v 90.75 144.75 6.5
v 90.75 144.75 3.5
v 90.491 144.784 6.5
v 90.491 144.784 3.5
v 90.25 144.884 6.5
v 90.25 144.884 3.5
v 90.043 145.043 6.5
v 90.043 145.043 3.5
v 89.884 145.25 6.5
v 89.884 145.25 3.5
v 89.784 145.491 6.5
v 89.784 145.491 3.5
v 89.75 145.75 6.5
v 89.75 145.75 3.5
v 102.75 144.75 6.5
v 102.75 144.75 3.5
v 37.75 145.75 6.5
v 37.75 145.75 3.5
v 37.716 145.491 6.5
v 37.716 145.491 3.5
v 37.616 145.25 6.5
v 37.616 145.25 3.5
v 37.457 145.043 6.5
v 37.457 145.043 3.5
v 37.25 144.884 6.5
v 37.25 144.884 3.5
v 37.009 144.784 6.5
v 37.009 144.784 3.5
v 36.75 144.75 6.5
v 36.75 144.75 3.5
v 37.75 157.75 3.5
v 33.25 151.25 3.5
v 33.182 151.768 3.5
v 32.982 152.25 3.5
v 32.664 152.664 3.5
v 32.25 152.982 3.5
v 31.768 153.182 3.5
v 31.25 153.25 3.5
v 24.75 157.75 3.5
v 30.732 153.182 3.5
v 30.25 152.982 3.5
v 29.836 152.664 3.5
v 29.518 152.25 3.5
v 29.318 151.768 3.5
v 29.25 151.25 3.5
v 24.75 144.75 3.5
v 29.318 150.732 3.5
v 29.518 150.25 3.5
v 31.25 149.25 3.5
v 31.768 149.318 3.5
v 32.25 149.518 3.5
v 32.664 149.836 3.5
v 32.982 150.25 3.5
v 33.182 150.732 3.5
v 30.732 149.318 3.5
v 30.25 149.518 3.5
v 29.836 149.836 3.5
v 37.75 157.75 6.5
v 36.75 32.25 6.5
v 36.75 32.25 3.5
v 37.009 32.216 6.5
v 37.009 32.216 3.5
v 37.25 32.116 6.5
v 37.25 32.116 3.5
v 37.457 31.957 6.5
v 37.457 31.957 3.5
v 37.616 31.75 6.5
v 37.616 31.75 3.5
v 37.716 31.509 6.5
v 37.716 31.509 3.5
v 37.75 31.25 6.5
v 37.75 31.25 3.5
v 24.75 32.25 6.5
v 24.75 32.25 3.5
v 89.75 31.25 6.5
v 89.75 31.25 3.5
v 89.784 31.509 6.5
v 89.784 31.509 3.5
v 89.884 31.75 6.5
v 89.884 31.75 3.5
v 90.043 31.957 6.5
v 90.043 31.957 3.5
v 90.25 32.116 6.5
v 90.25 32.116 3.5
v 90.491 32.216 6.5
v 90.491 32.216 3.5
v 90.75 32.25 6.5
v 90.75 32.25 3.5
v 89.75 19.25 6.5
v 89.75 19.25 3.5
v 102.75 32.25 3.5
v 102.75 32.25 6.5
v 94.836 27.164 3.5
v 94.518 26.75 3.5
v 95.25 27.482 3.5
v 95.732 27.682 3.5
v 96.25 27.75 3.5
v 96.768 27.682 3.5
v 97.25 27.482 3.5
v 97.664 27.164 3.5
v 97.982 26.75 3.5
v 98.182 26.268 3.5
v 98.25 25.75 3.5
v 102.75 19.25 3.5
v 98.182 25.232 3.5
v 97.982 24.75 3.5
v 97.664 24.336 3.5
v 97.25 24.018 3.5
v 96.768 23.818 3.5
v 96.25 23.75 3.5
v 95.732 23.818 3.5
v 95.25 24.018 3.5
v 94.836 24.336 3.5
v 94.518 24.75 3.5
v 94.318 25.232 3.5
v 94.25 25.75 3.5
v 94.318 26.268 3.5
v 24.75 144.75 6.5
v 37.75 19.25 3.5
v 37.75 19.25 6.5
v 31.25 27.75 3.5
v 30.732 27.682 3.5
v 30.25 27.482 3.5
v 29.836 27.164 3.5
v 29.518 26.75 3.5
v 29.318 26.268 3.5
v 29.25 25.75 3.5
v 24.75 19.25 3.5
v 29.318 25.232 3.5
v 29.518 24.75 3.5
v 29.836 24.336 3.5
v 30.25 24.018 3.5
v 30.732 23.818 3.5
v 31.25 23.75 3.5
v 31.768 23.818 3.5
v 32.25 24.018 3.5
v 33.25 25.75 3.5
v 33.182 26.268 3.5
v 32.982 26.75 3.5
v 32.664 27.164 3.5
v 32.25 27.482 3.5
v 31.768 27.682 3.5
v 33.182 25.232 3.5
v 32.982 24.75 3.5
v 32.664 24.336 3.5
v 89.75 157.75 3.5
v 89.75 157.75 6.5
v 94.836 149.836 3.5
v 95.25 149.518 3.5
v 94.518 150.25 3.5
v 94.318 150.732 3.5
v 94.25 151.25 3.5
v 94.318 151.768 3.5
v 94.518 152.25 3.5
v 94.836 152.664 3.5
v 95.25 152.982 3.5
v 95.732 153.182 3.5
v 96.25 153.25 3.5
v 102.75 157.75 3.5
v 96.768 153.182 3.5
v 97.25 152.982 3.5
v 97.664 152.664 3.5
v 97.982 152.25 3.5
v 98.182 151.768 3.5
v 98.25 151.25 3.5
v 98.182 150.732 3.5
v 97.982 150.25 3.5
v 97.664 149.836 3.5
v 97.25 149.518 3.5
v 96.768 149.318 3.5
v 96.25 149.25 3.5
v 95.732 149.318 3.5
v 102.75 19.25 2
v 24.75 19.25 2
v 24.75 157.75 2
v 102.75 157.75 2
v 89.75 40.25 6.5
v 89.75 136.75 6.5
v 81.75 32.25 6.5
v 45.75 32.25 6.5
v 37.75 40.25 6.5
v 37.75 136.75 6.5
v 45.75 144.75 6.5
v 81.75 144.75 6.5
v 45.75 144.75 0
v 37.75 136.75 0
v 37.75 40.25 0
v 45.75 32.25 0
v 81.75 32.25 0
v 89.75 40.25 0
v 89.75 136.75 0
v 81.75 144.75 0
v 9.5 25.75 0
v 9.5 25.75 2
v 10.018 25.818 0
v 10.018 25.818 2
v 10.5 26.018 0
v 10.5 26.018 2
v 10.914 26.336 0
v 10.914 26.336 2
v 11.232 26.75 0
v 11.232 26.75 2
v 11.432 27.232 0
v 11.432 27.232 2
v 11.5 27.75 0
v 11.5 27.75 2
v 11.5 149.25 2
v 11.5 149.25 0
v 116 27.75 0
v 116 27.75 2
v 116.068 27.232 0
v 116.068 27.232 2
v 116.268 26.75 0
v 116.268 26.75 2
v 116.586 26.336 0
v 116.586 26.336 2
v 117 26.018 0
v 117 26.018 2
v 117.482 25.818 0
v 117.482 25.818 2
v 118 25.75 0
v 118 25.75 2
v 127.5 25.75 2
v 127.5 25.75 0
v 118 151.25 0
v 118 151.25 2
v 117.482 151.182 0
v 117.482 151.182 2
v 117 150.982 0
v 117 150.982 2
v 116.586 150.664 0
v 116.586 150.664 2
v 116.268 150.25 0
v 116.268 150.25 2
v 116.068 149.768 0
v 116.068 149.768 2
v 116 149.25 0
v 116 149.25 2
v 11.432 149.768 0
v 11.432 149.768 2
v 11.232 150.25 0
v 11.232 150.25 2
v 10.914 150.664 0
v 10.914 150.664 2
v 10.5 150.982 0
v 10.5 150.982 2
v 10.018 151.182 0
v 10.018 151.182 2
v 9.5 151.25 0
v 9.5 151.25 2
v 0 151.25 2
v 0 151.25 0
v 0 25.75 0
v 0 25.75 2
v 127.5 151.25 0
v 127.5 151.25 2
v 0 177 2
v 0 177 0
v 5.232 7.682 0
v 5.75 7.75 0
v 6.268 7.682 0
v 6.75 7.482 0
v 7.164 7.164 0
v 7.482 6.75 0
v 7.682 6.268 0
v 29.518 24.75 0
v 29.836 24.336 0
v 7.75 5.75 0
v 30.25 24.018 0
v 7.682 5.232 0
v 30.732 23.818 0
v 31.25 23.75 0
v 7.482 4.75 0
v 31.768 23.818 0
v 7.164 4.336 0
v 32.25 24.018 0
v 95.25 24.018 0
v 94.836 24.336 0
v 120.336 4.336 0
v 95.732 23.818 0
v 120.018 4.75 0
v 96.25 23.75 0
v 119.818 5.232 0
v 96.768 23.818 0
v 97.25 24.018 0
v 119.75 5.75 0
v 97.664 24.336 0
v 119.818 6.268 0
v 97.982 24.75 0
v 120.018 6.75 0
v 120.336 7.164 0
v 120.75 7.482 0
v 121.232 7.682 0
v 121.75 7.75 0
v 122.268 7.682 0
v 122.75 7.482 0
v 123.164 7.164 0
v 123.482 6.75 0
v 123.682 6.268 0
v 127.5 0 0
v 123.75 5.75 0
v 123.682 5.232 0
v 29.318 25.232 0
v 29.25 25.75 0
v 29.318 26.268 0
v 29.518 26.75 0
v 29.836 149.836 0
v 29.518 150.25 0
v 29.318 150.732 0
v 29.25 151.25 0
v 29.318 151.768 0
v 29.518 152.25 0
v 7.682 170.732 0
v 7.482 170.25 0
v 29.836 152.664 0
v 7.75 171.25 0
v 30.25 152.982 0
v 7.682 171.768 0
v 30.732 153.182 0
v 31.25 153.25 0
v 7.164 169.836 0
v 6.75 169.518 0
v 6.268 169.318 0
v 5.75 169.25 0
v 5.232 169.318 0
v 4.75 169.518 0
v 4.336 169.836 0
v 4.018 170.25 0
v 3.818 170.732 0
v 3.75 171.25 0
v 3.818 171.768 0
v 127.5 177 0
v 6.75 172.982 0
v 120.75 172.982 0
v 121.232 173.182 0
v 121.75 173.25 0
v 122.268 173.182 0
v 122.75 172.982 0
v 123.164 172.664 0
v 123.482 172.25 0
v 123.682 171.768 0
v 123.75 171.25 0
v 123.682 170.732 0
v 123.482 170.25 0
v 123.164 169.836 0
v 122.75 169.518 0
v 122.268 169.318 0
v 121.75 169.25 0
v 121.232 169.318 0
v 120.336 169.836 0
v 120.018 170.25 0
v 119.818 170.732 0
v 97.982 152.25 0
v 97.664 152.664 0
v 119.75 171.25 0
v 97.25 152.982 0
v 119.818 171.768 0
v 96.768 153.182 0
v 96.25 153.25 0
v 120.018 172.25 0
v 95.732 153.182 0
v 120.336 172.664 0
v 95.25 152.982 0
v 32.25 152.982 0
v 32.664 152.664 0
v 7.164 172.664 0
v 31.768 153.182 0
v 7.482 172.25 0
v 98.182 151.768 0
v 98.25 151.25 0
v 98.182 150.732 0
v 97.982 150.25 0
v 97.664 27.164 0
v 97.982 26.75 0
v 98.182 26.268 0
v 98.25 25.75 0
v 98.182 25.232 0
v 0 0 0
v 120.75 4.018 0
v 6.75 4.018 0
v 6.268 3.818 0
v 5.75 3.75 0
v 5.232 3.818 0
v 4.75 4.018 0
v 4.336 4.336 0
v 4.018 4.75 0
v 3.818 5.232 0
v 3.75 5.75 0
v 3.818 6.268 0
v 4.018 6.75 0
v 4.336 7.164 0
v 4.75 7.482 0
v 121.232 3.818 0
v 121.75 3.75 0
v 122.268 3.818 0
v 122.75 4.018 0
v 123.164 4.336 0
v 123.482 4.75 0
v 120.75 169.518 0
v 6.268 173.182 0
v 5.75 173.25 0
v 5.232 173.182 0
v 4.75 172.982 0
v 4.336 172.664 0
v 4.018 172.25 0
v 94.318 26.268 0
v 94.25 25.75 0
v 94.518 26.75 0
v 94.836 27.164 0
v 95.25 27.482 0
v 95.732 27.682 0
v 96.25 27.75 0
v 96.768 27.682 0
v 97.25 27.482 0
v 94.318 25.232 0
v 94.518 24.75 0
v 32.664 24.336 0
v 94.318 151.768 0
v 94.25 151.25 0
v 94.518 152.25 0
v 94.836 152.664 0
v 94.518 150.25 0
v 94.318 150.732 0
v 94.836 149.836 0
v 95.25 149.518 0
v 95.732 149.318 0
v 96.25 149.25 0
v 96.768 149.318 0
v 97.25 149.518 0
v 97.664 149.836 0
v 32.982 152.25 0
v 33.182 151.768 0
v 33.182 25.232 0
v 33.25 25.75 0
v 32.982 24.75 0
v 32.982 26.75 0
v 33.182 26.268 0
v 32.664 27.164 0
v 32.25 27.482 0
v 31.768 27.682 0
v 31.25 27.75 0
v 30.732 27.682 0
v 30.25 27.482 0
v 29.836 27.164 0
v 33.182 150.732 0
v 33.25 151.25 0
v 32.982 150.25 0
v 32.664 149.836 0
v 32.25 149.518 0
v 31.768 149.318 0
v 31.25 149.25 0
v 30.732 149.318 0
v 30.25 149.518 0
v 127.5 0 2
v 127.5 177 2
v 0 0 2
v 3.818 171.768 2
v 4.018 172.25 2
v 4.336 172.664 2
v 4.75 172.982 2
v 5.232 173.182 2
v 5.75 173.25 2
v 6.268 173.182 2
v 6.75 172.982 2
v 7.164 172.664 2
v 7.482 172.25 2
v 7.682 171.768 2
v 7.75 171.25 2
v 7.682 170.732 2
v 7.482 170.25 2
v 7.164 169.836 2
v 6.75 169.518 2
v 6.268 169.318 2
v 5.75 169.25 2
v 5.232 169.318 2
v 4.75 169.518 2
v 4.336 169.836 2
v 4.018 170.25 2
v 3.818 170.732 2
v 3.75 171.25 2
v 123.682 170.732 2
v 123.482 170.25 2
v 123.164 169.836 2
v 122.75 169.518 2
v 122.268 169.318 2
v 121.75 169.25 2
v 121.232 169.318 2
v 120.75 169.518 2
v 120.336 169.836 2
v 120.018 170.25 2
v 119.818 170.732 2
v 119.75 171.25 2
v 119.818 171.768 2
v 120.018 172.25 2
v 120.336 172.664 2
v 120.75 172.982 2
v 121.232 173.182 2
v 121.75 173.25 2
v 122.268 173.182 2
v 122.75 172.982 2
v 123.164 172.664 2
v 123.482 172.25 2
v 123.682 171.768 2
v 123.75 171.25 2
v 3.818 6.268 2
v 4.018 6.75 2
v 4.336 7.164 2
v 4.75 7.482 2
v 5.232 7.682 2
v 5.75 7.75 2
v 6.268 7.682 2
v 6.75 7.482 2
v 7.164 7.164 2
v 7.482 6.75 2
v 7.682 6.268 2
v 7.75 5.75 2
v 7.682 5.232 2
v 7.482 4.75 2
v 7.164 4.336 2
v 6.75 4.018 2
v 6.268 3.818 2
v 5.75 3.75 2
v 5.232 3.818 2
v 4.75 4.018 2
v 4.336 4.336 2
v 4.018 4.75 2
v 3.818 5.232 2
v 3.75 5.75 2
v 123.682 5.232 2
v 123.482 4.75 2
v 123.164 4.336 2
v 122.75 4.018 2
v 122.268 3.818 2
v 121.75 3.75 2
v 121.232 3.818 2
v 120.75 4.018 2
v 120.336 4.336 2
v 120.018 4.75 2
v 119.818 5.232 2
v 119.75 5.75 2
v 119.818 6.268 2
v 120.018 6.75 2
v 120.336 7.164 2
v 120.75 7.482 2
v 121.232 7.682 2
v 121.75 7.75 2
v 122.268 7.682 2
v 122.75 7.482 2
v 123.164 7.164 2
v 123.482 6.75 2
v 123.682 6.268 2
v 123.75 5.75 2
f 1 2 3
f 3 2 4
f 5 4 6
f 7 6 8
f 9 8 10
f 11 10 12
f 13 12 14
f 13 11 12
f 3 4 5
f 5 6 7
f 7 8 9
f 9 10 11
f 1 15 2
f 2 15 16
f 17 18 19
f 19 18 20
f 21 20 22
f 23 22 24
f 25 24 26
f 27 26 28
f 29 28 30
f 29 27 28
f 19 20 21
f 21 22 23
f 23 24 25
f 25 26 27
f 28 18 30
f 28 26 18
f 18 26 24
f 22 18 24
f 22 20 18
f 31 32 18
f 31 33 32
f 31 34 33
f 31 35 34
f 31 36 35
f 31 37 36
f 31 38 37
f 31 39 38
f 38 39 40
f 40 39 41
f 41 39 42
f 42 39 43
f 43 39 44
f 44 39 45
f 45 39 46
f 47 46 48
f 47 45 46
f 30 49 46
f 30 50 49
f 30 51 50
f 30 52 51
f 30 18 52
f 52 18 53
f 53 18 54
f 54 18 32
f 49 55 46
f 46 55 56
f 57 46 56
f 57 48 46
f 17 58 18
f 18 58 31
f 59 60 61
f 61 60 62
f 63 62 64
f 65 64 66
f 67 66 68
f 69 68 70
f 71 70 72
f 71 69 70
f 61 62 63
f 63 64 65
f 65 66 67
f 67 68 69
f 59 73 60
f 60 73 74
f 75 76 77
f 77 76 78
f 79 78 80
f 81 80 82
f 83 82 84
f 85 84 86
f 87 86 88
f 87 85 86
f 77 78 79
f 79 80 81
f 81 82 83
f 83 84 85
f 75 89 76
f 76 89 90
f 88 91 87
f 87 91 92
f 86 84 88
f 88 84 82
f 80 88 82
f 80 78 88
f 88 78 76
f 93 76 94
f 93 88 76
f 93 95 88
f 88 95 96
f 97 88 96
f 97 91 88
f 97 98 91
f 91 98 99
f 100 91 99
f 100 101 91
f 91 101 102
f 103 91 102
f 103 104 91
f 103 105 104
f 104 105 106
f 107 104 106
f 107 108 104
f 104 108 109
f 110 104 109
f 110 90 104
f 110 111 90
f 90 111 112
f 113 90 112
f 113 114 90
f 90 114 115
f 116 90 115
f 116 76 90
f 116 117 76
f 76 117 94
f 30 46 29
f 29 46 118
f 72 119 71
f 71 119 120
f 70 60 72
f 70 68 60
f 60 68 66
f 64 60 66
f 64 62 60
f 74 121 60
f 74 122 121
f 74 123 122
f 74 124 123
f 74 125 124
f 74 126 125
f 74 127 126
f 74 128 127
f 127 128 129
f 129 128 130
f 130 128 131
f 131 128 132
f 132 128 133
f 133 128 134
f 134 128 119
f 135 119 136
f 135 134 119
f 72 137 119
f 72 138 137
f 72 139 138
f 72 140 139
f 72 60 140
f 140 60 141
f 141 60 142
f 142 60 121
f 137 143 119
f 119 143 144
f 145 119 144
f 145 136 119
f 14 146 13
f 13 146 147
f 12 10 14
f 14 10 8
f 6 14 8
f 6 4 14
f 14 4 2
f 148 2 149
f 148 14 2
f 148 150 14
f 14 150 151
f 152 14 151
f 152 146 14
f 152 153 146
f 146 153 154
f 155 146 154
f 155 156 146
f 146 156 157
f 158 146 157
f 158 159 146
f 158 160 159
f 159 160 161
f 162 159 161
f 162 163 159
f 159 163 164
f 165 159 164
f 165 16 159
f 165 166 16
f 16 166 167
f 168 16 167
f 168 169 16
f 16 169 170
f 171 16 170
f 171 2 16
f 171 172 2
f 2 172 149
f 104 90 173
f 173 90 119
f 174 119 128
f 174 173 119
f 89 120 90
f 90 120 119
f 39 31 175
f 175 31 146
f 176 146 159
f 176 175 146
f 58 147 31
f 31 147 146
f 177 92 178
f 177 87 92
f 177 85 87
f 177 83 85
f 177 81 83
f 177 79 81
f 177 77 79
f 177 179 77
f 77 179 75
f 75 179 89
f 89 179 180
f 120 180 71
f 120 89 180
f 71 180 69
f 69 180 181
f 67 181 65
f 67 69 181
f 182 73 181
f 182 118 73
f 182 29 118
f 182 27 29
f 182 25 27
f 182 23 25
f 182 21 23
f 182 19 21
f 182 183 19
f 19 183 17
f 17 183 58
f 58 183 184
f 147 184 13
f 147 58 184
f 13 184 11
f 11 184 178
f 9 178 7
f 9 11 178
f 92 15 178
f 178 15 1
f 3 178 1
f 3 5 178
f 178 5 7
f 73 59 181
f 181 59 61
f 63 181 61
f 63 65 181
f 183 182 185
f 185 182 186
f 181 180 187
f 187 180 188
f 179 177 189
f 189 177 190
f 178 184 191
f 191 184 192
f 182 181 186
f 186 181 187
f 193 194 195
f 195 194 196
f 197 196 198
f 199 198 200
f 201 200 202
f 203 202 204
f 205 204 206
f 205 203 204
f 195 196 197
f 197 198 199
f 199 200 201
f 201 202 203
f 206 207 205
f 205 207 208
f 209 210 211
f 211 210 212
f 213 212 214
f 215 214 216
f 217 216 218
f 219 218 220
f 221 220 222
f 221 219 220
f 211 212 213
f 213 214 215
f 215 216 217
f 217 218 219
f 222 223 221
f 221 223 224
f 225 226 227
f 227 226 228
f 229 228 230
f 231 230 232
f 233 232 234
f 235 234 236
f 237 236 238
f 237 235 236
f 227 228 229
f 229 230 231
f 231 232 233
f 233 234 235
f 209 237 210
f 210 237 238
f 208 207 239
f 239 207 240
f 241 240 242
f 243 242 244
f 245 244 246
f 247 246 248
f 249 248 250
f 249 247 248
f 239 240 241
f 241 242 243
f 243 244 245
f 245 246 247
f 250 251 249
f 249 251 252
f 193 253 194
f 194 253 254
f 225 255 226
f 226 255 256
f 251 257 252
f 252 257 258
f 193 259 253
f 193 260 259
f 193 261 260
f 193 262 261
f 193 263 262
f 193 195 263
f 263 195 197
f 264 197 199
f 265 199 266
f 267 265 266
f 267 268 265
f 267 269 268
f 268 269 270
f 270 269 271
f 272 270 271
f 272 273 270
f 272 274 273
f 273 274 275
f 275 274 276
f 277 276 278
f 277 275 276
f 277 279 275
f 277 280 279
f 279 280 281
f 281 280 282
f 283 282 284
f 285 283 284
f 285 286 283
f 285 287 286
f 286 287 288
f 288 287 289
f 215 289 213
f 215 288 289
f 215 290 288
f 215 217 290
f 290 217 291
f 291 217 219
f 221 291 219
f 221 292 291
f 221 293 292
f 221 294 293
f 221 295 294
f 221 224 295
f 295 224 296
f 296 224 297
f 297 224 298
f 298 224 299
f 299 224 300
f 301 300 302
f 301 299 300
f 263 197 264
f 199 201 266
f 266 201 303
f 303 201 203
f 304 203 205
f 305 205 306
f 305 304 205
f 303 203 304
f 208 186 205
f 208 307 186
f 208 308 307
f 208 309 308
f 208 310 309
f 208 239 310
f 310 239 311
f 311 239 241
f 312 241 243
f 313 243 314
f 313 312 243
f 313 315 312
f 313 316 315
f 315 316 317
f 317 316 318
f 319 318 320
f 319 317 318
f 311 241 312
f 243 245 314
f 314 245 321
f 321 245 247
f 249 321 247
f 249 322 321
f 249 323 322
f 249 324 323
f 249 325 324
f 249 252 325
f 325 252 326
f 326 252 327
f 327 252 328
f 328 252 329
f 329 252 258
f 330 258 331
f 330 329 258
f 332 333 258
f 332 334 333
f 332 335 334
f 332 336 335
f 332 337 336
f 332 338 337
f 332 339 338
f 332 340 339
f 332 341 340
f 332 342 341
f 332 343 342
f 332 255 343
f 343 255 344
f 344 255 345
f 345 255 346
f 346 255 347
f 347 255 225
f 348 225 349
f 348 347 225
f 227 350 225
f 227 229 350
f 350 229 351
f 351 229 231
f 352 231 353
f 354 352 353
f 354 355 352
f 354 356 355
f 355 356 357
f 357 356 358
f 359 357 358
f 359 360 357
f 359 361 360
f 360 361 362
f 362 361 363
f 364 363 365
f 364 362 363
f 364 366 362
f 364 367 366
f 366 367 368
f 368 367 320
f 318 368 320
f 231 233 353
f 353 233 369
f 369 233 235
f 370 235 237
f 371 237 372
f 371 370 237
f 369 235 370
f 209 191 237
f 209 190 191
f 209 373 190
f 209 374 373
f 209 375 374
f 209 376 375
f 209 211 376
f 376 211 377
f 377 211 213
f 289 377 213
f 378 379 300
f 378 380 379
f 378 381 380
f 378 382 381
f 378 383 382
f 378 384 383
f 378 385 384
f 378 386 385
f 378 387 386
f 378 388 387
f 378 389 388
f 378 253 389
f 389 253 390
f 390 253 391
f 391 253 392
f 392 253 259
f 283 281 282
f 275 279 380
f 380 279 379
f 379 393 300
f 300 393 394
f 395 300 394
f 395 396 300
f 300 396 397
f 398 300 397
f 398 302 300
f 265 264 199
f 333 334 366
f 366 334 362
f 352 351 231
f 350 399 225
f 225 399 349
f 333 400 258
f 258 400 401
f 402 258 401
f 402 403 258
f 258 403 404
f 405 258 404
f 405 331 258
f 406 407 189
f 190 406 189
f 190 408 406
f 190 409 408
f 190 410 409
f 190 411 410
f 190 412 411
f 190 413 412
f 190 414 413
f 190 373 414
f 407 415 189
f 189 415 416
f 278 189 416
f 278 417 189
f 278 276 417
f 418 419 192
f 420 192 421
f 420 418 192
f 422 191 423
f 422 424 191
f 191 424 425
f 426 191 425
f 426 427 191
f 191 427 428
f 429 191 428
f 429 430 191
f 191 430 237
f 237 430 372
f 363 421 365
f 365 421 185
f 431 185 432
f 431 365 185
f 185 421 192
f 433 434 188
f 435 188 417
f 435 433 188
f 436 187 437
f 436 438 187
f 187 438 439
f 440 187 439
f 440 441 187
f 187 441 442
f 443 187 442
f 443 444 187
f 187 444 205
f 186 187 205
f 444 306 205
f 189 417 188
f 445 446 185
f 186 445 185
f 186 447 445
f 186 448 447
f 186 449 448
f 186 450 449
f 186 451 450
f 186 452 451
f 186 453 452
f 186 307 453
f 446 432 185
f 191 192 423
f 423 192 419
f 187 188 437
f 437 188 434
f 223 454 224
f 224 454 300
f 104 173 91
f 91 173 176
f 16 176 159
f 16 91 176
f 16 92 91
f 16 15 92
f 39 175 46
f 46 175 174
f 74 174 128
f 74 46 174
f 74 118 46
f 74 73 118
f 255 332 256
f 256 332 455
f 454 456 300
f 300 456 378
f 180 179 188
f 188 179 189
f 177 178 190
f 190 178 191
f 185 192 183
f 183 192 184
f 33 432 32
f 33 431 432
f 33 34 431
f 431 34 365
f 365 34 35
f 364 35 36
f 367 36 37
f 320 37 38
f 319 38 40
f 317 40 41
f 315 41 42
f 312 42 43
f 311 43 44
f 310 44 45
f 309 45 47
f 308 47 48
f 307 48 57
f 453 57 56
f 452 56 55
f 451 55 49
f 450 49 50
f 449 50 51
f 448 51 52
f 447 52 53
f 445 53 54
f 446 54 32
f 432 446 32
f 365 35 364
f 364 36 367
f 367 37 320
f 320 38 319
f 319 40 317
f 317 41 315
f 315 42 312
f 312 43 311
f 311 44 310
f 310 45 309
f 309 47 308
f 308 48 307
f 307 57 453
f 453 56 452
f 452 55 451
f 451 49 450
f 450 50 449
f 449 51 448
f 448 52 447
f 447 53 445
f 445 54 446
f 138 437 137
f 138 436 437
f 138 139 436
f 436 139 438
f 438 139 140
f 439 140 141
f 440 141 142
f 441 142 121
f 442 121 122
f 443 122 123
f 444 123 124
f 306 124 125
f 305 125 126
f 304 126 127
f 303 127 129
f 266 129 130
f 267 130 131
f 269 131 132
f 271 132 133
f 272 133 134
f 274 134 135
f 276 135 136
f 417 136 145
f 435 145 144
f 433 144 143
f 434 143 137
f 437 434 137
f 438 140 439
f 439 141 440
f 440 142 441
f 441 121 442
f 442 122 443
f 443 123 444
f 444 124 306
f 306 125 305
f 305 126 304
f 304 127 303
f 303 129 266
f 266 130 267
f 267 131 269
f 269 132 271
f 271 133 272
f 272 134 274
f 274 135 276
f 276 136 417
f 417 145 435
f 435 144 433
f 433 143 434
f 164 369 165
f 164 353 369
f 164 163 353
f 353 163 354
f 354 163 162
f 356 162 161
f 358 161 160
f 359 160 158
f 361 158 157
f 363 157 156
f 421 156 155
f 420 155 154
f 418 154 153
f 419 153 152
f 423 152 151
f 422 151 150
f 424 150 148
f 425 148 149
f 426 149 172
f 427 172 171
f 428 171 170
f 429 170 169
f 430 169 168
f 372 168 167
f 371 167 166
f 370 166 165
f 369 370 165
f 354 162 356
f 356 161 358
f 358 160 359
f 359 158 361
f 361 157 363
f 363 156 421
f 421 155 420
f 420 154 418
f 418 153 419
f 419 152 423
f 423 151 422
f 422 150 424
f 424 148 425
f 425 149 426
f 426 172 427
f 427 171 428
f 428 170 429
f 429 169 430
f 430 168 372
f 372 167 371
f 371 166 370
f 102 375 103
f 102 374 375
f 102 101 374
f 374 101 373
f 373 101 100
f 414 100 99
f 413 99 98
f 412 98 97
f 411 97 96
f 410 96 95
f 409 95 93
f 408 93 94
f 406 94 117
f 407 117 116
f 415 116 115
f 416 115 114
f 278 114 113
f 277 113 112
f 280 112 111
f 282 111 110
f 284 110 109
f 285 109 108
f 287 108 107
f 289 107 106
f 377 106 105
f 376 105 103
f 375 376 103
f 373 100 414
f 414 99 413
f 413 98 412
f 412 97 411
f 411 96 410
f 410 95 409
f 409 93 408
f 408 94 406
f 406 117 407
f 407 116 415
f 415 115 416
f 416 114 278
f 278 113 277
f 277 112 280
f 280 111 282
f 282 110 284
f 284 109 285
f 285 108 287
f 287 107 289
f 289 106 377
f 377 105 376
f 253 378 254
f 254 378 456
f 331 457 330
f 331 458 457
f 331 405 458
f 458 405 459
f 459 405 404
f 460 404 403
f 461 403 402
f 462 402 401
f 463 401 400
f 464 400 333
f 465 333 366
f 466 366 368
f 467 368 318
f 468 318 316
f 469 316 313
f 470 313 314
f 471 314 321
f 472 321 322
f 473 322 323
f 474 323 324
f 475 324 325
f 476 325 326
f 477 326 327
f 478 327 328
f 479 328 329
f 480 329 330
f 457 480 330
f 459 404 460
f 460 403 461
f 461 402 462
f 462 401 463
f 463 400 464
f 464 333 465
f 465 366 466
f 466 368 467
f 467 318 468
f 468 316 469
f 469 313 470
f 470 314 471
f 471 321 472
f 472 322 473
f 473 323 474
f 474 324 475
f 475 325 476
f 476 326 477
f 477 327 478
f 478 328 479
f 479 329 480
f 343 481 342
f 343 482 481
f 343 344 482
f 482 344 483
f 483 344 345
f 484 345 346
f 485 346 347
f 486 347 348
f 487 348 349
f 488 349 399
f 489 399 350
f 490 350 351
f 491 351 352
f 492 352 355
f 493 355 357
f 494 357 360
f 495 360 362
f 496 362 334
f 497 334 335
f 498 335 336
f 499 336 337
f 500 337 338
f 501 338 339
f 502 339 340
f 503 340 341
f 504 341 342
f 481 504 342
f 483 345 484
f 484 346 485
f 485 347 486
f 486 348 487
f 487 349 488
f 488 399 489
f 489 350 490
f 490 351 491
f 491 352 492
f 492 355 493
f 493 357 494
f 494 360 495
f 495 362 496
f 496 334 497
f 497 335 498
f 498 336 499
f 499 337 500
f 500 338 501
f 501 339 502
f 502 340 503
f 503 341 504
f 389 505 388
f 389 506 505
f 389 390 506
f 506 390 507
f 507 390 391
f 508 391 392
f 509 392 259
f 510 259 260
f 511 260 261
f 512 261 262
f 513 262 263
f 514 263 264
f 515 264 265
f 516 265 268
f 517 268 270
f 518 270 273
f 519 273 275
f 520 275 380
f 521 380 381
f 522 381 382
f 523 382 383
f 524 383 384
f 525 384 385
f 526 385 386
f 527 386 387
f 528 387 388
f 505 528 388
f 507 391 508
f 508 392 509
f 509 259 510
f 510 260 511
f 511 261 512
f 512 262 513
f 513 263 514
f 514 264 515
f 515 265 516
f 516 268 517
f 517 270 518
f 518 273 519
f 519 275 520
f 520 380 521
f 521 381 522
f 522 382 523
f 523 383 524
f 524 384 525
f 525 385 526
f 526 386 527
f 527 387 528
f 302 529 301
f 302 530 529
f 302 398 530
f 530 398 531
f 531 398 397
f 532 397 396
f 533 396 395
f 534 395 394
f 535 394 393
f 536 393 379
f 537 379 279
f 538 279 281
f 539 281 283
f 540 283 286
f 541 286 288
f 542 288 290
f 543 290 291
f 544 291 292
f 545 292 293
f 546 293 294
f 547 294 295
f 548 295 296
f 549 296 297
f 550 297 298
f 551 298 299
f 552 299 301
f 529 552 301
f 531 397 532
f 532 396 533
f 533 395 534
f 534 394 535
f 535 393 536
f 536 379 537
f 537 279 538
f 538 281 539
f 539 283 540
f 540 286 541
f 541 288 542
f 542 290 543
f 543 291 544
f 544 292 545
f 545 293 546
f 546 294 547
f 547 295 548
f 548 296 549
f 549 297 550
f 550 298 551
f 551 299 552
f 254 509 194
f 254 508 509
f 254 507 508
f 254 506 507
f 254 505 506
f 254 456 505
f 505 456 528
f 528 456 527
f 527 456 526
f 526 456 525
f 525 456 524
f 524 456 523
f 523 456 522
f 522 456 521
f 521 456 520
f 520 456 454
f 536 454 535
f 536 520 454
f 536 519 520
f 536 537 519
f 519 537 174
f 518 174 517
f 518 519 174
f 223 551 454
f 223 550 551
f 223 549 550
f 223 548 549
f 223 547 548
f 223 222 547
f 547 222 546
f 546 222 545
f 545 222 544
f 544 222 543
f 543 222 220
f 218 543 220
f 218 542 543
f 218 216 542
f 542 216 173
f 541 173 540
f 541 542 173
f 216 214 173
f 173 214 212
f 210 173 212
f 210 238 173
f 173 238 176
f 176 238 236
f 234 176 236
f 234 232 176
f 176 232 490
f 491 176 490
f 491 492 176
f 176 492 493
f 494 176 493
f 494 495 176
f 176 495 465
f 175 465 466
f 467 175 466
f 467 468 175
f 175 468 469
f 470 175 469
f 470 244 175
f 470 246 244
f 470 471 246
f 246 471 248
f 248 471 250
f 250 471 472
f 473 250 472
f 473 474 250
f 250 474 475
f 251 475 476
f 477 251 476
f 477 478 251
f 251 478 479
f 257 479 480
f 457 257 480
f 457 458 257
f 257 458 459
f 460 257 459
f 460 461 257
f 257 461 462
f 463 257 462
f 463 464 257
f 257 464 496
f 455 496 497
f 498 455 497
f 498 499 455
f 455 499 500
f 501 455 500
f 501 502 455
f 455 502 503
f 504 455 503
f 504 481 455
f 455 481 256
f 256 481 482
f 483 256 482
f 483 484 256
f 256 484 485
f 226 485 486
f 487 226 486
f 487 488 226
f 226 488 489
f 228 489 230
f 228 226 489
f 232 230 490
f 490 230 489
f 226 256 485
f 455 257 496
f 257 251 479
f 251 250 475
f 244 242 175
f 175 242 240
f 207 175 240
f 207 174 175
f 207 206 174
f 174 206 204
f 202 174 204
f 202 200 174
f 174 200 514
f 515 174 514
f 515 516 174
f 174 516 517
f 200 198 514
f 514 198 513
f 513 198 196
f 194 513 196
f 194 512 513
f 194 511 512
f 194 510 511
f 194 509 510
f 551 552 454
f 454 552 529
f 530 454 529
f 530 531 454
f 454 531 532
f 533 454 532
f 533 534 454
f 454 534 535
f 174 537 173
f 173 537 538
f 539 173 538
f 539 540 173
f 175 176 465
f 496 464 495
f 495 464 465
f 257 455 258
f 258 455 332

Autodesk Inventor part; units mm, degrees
ref_plane "YZ Plane" through (0, 0, 0) normal (1, 0, 0) x (0, 1, 0)
ref_plane "XZ Plane" through (0, 0, 0) normal (0, 1, 0) x (-1, 0, 0)
ref_plane "XY Plane" through (0, 0, 0) normal (0, 0, 1) x (1, 0, 0)
sketch "Boceto1" plane through (0, 0, 0) normal (0, 0, 1) x (1, 0, 0)
  line L0 (0, 0) -> (127.5, 0)
  line L1 (127.5, 0) -> (127.5, 177)
  line L2 (127.5, 177) -> (0, 177)
  line L3 (0, 177) -> (0, 0)
  dimension "d32" = 127.5
  dimension "d33" = 177
extrude "Extrusión1" add sketch "Boceto1" along normal blind 6
ref_plane "Plano de trabajo6" through (0, 88.5, 0) normal (0, -1, 0) x (1, 0, 0)
ref_plane "Plano de trabajo7" through (63.75, 0, 0) normal (-1, 0, 0) x (0, 0, 1)
sketch "Boceto17" plane through (0, 0, 6) normal (0, 0, 1) x (1, 0, 0)
  line L0 (127.5, 0) -> (116, 0)
  line L1 (116, 0) -> (116, 11.5)
  line L2 (116, 11.5) -> (127.5, 11.5)
  line L3 (127.5, 11.5) -> (127.5, 0)
  line L4 (0, 0) -> (11.5, 0)
  line L5 (11.5, 0) -> (11.5, 11.5)
  line L6 (11.5, 11.5) -> (0, 11.5)
  line L7 (0, 11.5) -> (0, 0)
  line L8 (127.5, 177) -> (116, 177)
  line L9 (116, 177) -> (116, 165.5)
  line L10 (116, 165.5) -> (127.5, 165.5)
  line L11 (127.5, 165.5) -> (127.5, 177)
  line L12 (0, 177) -> (11.5, 177)
  line L13 (11.5, 177) -> (11.5, 165.5)
  line L14 (11.5, 165.5) -> (0, 165.5)
  line L15 (0, 165.5) -> (0, 177)
  dimension "d124" = 11.5
  dimension "d125" = 11.5
  dimension "d129" = 11.5
  dimension "d130" = 11.5
  dimension "d131" = 11.5
  dimension "d132" = 11.5
  dimension "d133" = 11.5
  dimension "d134" = 11.5
extrude "Extrusión12" cut sketch "Boceto17" against normal blind 4
sketch "Boceto18" plane through (0, 0, 2) normal (0, 0, 1) x (1, 0, 0)
  line L0 (0, 0) -> (11.5, 0)
  line L1 (11.5, 0) -> (11.5, 11.5)
  line L2 (11.5, 11.5) -> (0, 11.5)
  line L3 (0, 11.5) -> (0, 0)
  line L4 (127.5, 0) -> (116, 0)
  line L5 (116, 0) -> (116, 11.5)
  line L6 (116, 11.5) -> (127.5, 11.5)
  line L7 (127.5, 11.5) -> (127.5, 0)
  line L8 (127.5, 177) -> (116, 177)
  line L9 (116, 177) -> (116, 165.5)
  line L10 (116, 165.5) -> (127.5, 165.5)
  line L11 (127.5, 165.5) -> (127.5, 177)
  line L12 (0, 177) -> (11.5, 177)
  line L13 (11.5, 177) -> (11.5, 165.5)
  line L14 (11.5, 165.5) -> (0, 165.5)
  line L15 (0, 165.5) -> (0, 177)
  line L16 (116, 11.5) -> (127.5, 0)
  line L17 (127.5, 11.5) -> (116, 0)
  circle A0 centre (121.75, 5.75) radius 2
  dimension "d137" = 4
extrude "Extrusión13" cut sketch "Boceto18" against normal blind 3.2 contours A0 L17 L16 | L16 L17 A0 | A0 L16 L17 | L17 L16 A0
mirror "Simetría7" about plane through (63.75, 0, 0) normal (-1, 0, 0) of "Extrusión13"
mirror "Simetría8" about plane through (0, 88.5, 0) normal (0, -1, 0) of "Extrusión13", "Simetría7"
sketch "Boceto19" plane through (0, 0, 6) normal (0, 0, 1) x (1, 0, 0)
  line L0 (0, 0) -> (127.5, 0)
  line L1 (127.5, 0) -> (127.5, 85.5)
  line L2 (127.5, 85.5) -> (0, 85.5)
  line L3 (0, 85.5) -> (0, 0)
  line L4 (127.5, 0) -> (127.5, 177) projected
  line L5 (0, 85.5) -> (127.5, 85.5)
  line L6 (127.5, 85.5) -> (127.5, 91.5)
  line L7 (127.5, 91.5) -> (0, 91.5)
  line L8 (0, 91.5) -> (0, 85.5)
  line L9 (0, 91.5) -> (127.5, 91.5)
  line L10 (127.5, 91.5) -> (127.5, 177)
  line L11 (127.5, 177) -> (0, 177)
  line L12 (0, 177) -> (0, 91.5)
  dimension "d140" = 127.5
  dimension "d141" = 85.5
  dimension "d142" = 6
extrude "Extrusión14" cut sketch "Boceto19" against normal blind 2.5
sketch "Boceto20" plane through (0, 0, 0) normal (0, 0, -1) x (-1, 0, 0)
  line L0 (-127.5, 165.5) -> (-127.5, 11.5) projected
  line L1 (-127.5, 88.5) -> (-127.5, 9.25)
  line L2 (-127.5, 0) -> (-127.5, 177) projected
  line L3 (-127.5, 88.5) -> (-48.25, 88.5) construction
  line L4 (-11.5, 0) -> (-116, 0) projected
  line L5 (-63.75, 0) -> (-102.75, 0)
  line L6 (-63.75, 0) -> (-24.75, 0) construction
  line L7 (-102.75, 0) -> (-102.75, 9.25)
  line L8 (-127.5, 9.25) -> (-102.75, 9.25)
  line L9 (-102.75, 9.25) -> (-24.75, 9.25)
  line L10 (-24.75, 9.25) -> (-24.75, 167.75)
  line L11 (-24.75, 167.75) -> (-102.75, 167.75)
  line L12 (-102.75, 167.75) -> (-102.75, 9.25)
  line L13 (-102.75, 9.25) -> (-102.75, 25.75)
  line L14 (-102.75, 25.75) -> (-96.25, 25.75)
  circle A0 centre (-96.25, 25.75) radius 2
  point P0 (0, 0)
  point P1 (-127.5, 91.5)
  point P2 (-127.5, 85.5)
  dimension "d145" = 79.25
  dimension "d146" = 90
  dimension "d149" = 39
  dimension "d150" = 180
  dimension "d151" = 78
  dimension "d152" = 158.5
  dimension "d153" = 16.5
  dimension "d154" = 6.5
  dimension "d155" = 4
extrude "Extrusión15" cut sketch "Boceto20" against normal blind 10 contours A0
mirror "Simetría9" about plane through (0, 88.5, 0) normal (0, -1, 0) of "Extrusión15"
mirror "Simetría10" about plane through (63.75, 0, 0) normal (-1, 0, 0) of "Extrusión15", "Simetría9"
sketch "Boceto21" plane through (0, 0, 3.5) normal (0, 0, 1) x (1, 0, 0)
  circle A0 centre (31.25, 25.75) radius 2 projected
  line L0 (31.25, 25.75) -> (24.75, 25.75)
  line L1 (24.75, 25.75) -> (24.75, 32.25)
  line L2 (24.75, 32.25) -> (37.75, 32.25)
  line L3 (37.75, 32.25) -> (37.75, 19.25)
  line L4 (37.75, 19.25) -> (24.75, 19.25)
  line L5 (24.75, 19.25) -> (24.75, 32.25)
  circle A1 centre (96.25, 151.25) radius 2 projected
  line L6 (96.25, 151.25) -> (102.75, 151.25)
  line L7 (96.25, 151.25) -> (102.75, 151.25) construction
  line L8 (102.75, 151.25) -> (102.75, 157.75)
  line L9 (102.75, 157.75) -> (89.75, 157.75)
  line L10 (89.75, 157.75) -> (89.75, 144.75)
  line L11 (89.75, 144.75) -> (102.75, 144.75)
  line L12 (102.75, 144.75) -> (102.75, 157.75)
  line L13 (37.75, 32.25) -> (89.75, 32.25)
  line L14 (89.75, 32.25) -> (89.75, 144.75)
  line L15 (89.75, 144.75) -> (37.75, 144.75)
  line L16 (37.75, 144.75) -> (37.75, 32.25)
  point P0 (0, 0)
  dimension "d158" = 6.5
  dimension "d159" = 6.5
  dimension "d160" = 13
  dimension "d161" = 13
  dimension "d162" = 6.5
  dimension "d163" = 0
  dimension "d164" = 6.5
  dimension "d165" = 90
  dimension "d166" = 13
  dimension "d167" = 13
extrude "Extrusión16" cut sketch "Boceto21" against normal blind 10 contours L16 L15 L14 L13
sketch "Boceto22" plane through (0, 0, 3.5) normal (0, 0, 1) x (1, 0, 0)
  line L0 (0, 165.5) -> (11.5, 165.5)
  line L1 (0, 165.5) -> (11.5, 165.5) projected
  line L2 (11.5, 165.5) -> (11.5, 177)
  line L3 (11.5, 165.5) -> (11.5, 177) projected
  line L4 (11.5, 177) -> (116, 177)
  line L5 (116, 177) -> (116, 165.5) projected
  line L6 (116, 177) -> (116, 165.5)
  line L7 (116, 165.5) -> (127.5, 165.5)
  line L8 (116, 165.5) -> (127.5, 165.5) projected
  line L9 (127.5, 165.5) -> (127.5, 11.5)
  line L10 (127.5, 165.5) -> (127.5, 11.5) projected
  line L11 (127.5, 11.5) -> (116, 11.5)
  line L12 (127.5, 11.5) -> (116, 11.5) projected
  line L13 (116, 11.5) -> (116, 0)
  line L14 (116, 11.5) -> (116, 0) projected
  line L15 (116, 0) -> (11.5, 0)
  line L16 (11.5, 0) -> (11.5, 11.5)
  line L17 (11.5, 0) -> (11.5, 11.5) projected
  line L18 (11.5, 11.5) -> (0, 11.5)
  line L19 (11.5, 11.5) -> (0, 11.5) projected
  line L20 (0, 11.5) -> (0, 165.5)
  line L21 (37.75, 144.75) -> (89.75, 144.75)
  line L22 (89.75, 144.75) -> (89.75, 32.25)
  line L23 (89.75, 32.25) -> (37.75, 32.25)
  line L24 (37.75, 32.25) -> (37.75, 144.75)
  circle A0 centre (31.25, 25.75) radius 2
  line L25 (31.25, 25.75) -> (24.75, 25.75)
  line L26 (24.75, 25.75) -> (24.75, 32.25)
  line L27 (24.75, 32.25) -> (37.75, 32.25)
  line L28 (37.75, 32.25) -> (37.75, 19.25)
  line L29 (37.75, 19.25) -> (24.75, 19.25)
  line L30 (24.75, 19.25) -> (24.75, 32.25)
  circle A1 centre (96.25, 151.25) radius 2
  line L31 (96.25, 151.25) -> (102.75, 151.25)
  line L32 (96.25, 151.25) -> (102.75, 151.25) construction
  line L33 (102.75, 151.25) -> (102.75, 157.75)
  line L34 (102.75, 157.75) -> (89.75, 157.75)
  line L35 (89.75, 157.75) -> (89.75, 144.75)
  line L36 (89.75, 144.75) -> (102.75, 144.75)
  line L37 (102.75, 144.75) -> (102.75, 157.75)
  line L38 (37.75, 32.25) -> (89.75, 32.25)
  line L39 (89.75, 32.25) -> (89.75, 144.75)
  line L40 (89.75, 144.75) -> (37.75, 144.75)
  line L41 (37.75, 144.75) -> (37.75, 32.25)
  line L42 (24.75, 19.25) -> (102.75, 19.25)
  line L43 (102.75, 19.25) -> (102.75, 157.75)
  line L44 (102.75, 157.75) -> (24.75, 157.75)
  line L45 (24.75, 157.75) -> (24.75, 19.25)
  point P0 (0, 0)
  point P1 (0, 0)
  dimension "d170" = 6.5
  dimension "d171" = 6.5
  dimension "d172" = 13
  dimension "d173" = 13
  dimension "d174" = 6.5
  dimension "d175" = 0
  dimension "d176" = 6.5
  dimension "d177" = 90
  dimension "d178" = 13
  dimension "d179" = 13
extrude "Extrusión17" cut sketch "Boceto22" against normal blind 1.5 contours L0 L2 L4 L5 L7 L9 L11 L13 L15 L16 L18 L20
sketch "Boceto23" plane through (0, 0, 2) normal (0, 0, 1) x (1, 0, 0)
  line L0 (0, 0) -> (11.5, 0)
  line L1 (11.5, 0) -> (11.5, 11.5)
  line L2 (11.5, 11.5) -> (0, 11.5)
  line L3 (0, 11.5) -> (0, 0)
  line L4 (127.5, 177) -> (116, 177)
  line L5 (116, 177) -> (116, 165.5)
  line L6 (116, 165.5) -> (127.5, 165.5)
  line L7 (127.5, 165.5) -> (127.5, 177)
  line L8 (11.5, 11.5) -> (116, 11.5)
  line L9 (116, 11.5) -> (116, 165.5)
  line L10 (116, 165.5) -> (11.5, 165.5)
  line L11 (11.5, 165.5) -> (11.5, 11.5)
  line L12 (24.75, 157.75) -> (102.75, 157.75)
  line L13 (102.75, 157.75) -> (102.75, 19.25)
  line L14 (102.75, 19.25) -> (24.75, 19.25)
  line L15 (24.75, 19.25) -> (24.75, 157.75)
  circle A0 centre (31.25, 151.25) radius 2 projected
  line L16 (31.25, 151.25) -> (0, 151.25)
  line L17 (0, 177) -> (0, 0) projected
  circle A1 centre (96.25, 25.75) radius 2 projected
  line L18 (0, 151.25) -> (11.5, 151.25)
  line L19 (11.5, 151.25) -> (11.5, 25.75)
  line L20 (11.5, 25.75) -> (0, 25.75)
  line L21 (0, 25.75) -> (0, 151.25)
  line L22 (96.25, 25.75) -> (127.5, 25.75)
  line L23 (127.5, 25.75) -> (116, 25.75)
  line L24 (116, 25.75) -> (116, 151.25)
  line L25 (116, 151.25) -> (127.5, 151.25)
  line L26 (127.5, 151.25) -> (127.5, 25.75)
  dimension "d182" = 11.5
  dimension "d183" = 11.5
  dimension "d184" = 11.5
  dimension "d185" = 11.5
extrude "Extrusión18" cut sketch "Boceto23" against normal blind 3 contours L17 L16 L11 L20 | L9 L25 L26 L22
fillet "Empalme1" radius 2 4 edges at (11.5, 151.25, 1) (116, 151.25, 1) (116, 25.75, 1) (11.5, 25.75, 1)
sketch "Boceto24" plane through (0, 0, 3.5) normal (0, 0, 1) x (1, 0, 0)
  line L0 (24.75, 157.75) -> (102.75, 157.75)
  line L1 (102.75, 157.75) -> (102.75, 19.25)
  line L2 (102.75, 19.25) -> (24.75, 19.25)
  line L3 (24.75, 19.25) -> (24.75, 157.75)
  circle A0 centre (31.25, 151.25) radius 2 projected
  circle A1 centre (31.25, 151.25) radius 2
  circle A2 centre (96.25, 151.25) radius 2 projected
  circle A3 centre (96.25, 151.25) radius 2
  circle A4 centre (96.25, 25.75) radius 2 projected
  circle A5 centre (96.25, 25.75) radius 2
  circle A6 centre (31.25, 25.75) radius 2 projected
  circle A7 centre (31.25, 25.75) radius 2
  line L4 (37.75, 144.75) -> (89.75, 144.75)
  line L5 (89.75, 144.75) -> (89.75, 32.25)
  line L6 (89.75, 32.25) -> (37.75, 32.25)
  line L7 (37.75, 32.25) -> (37.75, 144.75)
  point P0 (0, 0)
extrude "Extrusión19" add sketch "Boceto24" along normal blind 3
sketch "Boceto25" plane through (0, 0, 6.5) normal (0, 0, 1) x (1, 0, 0)
  line L0 (37.75, 144.75) -> (24.75, 144.75)
  line L1 (24.75, 144.75) -> (24.75, 157.75)
  line L2 (24.75, 157.75) -> (37.75, 157.75)
  line L3 (37.75, 157.75) -> (37.75, 144.75)
  line L4 (24.75, 19.25) -> (37.75, 19.25)
  line L5 (37.75, 19.25) -> (37.75, 32.25)
  line L6 (37.75, 32.25) -> (24.75, 32.25)
  line L7 (24.75, 32.25) -> (24.75, 19.25)
  line L8 (102.75, 19.25) -> (89.75, 19.25)
  line L9 (89.75, 19.25) -> (89.75, 32.25)
  line L10 (89.75, 32.25) -> (102.75, 32.25)
  line L11 (102.75, 32.25) -> (102.75, 19.25)
  line L12 (102.75, 157.75) -> (89.75, 157.75)
  line L13 (89.75, 157.75) -> (89.75, 144.75)
  line L14 (89.75, 144.75) -> (102.75, 144.75)
  line L15 (102.75, 144.75) -> (102.75, 157.75)
  circle A0 centre (31.25, 151.25) radius 2 projected
  circle A1 centre (31.25, 151.25) radius 2
  circle A2 centre (96.25, 151.25) radius 2 projected
  circle A3 centre (96.25, 151.25) radius 2
  circle A4 centre (96.25, 25.75) radius 2 projected
  circle A5 centre (96.25, 25.75) radius 2
  circle A6 centre (31.25, 25.75) radius 2 projected
  circle A7 centre (31.25, 25.75) radius 2
  point P0 (0, 0)
  dimension "d191" = 13
  dimension "d192" = 13
sketch "Boceto26" plane through (0, 0, 6.5) normal (0, 0, 1) x (1, 0, 0)
  line L0 (37.75, 32.25) -> (45.75, 32.25)
  line L1 (45.75, 32.25) -> (45.75, 40.25)
  line L2 (45.75, 40.25) -> (37.75, 40.25)
  line L3 (37.75, 40.25) -> (37.75, 32.25)
  line L4 (37.75, 40.25) -> (45.75, 32.25)
  line L5 (89.75, 32.25) -> (81.75, 32.25)
  line L6 (81.75, 32.25) -> (81.75, 40.25)
  line L7 (81.75, 40.25) -> (89.75, 40.25)
  line L8 (89.75, 40.25) -> (89.75, 32.25)
  line L9 (89.75, 40.25) -> (81.75, 32.25)
  line L10 (37.75, 144.75) -> (45.75, 144.75)
  line L11 (45.75, 144.75) -> (45.75, 136.75)
  line L12 (45.75, 136.75) -> (37.75, 136.75)
  line L13 (37.75, 136.75) -> (37.75, 144.75)
  line L14 (45.75, 144.75) -> (37.75, 136.75)
  line L15 (89.75, 144.75) -> (81.75, 144.75)
  line L16 (81.75, 144.75) -> (81.75, 136.75)
  line L17 (81.75, 136.75) -> (89.75, 136.75)
  line L18 (89.75, 136.75) -> (89.75, 144.75)
  line L19 (89.75, 136.75) -> (81.75, 144.75)
  point P0 (0, 0)
  dimension "d193" = 8
  dimension "d194" = 8
  dimension "d195" = 8
  dimension "d196" = 8
  dimension "d197" = 8
  dimension "d198" = 8
  dimension "d199" = 8
  dimension "d200" = 8
extrude "Extrusión20" add sketch "Boceto26" against normal blind 6.5 contours L3 L4 L0 | L5 L9 L8 | L10 L14 L13 | L18 L19 L15
extrude "Extrusión21" cut sketch "Boceto25" against normal blind 3
fillet "Empalme2" radius 1 4 edges at (89.75, 32.25, 5) (37.75, 32.25, 5) (37.75, 144.75, 5) (89.75, 144.75, 5)
properties part number "transillum_diffusor_partE_v1"
